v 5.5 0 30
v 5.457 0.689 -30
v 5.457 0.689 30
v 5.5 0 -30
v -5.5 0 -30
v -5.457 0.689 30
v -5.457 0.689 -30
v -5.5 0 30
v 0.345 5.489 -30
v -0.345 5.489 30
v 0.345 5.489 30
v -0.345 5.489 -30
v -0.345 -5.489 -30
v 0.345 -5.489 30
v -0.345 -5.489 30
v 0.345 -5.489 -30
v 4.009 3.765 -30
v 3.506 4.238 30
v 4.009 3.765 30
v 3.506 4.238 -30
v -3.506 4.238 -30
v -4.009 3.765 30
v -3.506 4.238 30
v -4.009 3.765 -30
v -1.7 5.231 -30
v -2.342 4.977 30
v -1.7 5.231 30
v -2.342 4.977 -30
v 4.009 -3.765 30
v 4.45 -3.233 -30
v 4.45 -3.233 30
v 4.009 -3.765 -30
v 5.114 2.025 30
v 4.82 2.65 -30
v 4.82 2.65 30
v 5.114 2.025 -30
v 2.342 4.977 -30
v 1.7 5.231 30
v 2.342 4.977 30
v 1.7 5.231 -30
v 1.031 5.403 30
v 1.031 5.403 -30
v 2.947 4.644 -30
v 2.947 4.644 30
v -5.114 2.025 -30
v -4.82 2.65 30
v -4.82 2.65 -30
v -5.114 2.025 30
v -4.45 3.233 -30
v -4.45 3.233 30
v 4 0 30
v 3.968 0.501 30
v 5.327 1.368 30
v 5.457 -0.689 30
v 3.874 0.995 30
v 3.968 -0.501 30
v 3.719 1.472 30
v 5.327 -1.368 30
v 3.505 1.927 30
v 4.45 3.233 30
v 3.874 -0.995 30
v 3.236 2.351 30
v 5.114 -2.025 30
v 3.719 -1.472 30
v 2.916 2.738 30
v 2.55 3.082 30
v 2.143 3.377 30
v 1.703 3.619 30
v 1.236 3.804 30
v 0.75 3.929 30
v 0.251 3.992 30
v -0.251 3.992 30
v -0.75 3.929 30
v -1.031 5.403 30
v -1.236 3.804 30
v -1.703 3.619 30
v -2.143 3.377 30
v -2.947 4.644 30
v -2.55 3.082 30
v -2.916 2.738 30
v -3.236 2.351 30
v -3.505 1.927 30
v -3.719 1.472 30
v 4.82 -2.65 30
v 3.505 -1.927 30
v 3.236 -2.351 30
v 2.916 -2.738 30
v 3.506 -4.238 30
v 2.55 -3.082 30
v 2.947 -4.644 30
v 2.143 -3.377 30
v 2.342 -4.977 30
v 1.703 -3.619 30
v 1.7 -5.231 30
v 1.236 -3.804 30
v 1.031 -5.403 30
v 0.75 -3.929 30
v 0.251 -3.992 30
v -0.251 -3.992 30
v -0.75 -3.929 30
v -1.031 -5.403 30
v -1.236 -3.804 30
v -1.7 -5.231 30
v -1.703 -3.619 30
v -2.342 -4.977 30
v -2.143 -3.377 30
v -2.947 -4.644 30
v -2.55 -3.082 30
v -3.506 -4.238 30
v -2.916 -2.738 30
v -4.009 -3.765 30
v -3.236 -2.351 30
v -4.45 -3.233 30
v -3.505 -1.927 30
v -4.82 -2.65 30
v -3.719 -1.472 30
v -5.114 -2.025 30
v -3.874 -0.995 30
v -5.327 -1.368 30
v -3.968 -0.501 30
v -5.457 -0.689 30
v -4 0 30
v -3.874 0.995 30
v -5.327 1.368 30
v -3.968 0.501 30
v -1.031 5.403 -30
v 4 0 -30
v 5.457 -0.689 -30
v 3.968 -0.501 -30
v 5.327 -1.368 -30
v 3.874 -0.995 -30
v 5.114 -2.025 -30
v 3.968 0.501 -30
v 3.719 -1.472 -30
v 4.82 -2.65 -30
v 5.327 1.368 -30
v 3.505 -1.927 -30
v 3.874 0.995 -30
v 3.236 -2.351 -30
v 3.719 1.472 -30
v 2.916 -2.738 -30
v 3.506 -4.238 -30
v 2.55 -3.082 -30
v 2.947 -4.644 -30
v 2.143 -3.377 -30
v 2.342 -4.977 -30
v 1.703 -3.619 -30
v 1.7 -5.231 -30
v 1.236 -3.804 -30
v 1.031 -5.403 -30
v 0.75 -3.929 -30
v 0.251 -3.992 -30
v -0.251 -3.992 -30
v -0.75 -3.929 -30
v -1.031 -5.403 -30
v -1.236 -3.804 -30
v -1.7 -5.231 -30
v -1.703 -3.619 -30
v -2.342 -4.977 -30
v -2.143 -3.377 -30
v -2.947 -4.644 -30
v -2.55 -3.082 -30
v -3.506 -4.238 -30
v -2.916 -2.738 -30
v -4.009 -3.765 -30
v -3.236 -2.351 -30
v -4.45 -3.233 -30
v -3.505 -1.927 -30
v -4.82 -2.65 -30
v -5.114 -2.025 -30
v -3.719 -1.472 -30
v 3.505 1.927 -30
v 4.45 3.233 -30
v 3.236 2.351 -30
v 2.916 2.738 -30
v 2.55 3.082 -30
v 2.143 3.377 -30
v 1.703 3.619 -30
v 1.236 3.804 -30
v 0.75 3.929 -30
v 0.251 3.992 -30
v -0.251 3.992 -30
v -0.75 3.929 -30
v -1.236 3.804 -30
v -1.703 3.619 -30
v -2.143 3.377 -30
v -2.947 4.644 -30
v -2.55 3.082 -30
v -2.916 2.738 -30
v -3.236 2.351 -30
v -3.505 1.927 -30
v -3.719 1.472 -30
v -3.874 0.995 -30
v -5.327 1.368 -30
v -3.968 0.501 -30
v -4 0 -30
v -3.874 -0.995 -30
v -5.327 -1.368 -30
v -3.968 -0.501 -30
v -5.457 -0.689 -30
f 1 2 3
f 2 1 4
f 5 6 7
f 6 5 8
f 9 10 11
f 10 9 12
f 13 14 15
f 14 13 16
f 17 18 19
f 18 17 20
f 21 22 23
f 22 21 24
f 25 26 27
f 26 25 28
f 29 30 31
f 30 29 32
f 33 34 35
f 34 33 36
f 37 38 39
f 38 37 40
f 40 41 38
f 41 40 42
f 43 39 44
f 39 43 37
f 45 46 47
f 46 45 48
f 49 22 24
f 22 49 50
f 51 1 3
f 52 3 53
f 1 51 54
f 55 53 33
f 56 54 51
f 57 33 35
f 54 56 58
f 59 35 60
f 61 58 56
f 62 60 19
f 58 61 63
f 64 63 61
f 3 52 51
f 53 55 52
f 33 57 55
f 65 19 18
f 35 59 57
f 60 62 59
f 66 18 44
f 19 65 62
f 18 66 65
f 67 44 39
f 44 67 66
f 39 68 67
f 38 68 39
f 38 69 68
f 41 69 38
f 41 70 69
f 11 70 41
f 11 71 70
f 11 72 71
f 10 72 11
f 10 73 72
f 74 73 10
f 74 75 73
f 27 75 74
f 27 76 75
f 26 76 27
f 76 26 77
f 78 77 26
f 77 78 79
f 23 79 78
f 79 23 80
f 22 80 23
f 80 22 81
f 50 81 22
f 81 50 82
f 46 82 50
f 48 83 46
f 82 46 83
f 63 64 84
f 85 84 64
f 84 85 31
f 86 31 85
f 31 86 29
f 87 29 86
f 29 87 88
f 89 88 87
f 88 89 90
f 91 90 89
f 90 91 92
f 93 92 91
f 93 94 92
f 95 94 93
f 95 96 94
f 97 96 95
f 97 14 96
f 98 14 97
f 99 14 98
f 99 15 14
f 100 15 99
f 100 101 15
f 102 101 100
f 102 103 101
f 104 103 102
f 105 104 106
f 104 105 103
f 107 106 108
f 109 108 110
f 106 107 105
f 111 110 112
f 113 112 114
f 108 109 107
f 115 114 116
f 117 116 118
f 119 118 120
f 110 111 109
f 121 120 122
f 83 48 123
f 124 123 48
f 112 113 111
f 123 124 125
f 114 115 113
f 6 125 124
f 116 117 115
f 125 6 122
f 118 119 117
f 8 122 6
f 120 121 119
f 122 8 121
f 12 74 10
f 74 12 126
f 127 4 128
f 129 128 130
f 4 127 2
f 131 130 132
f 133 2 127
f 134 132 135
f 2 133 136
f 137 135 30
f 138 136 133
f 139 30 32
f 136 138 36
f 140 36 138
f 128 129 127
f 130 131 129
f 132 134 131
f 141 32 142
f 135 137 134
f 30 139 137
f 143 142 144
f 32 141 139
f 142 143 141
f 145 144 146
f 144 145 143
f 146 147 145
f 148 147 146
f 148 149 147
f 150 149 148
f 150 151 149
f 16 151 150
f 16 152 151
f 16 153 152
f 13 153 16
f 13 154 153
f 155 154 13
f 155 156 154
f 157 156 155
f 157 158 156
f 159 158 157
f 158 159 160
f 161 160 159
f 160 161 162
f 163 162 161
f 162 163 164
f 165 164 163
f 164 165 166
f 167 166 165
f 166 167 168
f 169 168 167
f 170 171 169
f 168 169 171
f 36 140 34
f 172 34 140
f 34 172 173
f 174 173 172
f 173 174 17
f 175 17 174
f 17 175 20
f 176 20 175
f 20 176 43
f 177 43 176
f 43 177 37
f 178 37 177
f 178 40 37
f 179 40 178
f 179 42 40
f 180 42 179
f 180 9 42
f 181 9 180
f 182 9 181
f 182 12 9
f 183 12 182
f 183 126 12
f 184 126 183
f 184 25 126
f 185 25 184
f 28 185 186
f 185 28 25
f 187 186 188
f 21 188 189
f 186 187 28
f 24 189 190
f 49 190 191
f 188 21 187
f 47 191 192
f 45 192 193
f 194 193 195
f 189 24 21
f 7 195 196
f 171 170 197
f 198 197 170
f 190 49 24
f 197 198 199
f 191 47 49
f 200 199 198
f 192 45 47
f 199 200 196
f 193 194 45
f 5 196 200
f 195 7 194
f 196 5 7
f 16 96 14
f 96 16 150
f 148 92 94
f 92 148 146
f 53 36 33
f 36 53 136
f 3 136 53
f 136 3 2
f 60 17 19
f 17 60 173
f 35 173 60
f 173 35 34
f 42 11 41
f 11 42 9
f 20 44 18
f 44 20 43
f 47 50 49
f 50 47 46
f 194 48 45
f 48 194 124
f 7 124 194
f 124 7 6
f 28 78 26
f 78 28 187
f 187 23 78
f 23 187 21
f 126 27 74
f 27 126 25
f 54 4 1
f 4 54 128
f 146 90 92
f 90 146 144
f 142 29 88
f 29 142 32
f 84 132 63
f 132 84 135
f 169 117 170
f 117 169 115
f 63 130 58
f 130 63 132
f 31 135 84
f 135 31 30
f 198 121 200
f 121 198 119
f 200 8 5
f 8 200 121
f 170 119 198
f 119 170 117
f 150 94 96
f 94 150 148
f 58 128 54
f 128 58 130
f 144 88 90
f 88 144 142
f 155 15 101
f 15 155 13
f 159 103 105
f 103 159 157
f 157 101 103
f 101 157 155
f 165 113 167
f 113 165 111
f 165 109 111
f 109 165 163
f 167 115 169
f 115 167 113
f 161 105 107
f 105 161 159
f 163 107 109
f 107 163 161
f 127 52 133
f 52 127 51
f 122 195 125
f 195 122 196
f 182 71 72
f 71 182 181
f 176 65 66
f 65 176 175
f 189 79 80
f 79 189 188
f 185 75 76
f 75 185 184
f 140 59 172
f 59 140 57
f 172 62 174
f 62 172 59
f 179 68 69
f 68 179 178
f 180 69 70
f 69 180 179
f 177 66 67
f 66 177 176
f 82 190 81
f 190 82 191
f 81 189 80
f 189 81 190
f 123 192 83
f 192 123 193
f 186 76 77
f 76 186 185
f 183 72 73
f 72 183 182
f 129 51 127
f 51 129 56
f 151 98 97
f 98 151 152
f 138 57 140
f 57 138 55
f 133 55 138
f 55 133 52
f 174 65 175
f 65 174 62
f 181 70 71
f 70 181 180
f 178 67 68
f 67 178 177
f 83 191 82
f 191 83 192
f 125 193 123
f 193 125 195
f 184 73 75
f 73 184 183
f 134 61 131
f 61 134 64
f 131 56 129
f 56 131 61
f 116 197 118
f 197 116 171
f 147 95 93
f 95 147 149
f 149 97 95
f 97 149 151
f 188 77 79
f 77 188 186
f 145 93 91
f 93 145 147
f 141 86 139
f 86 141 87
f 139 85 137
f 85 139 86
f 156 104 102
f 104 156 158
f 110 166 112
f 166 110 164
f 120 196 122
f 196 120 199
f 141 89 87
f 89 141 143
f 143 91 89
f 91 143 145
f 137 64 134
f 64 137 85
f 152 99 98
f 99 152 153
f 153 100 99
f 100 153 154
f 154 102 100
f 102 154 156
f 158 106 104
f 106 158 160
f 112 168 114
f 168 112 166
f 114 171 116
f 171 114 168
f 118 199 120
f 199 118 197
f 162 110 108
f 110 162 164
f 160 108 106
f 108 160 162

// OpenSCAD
$fn = 50;


difference() {
	union() {
		translate(v = [0, 0, -30.0000000000]) {
			cylinder(h = 60, r = 5.5000000000);
		}
	}
	union() {
		translate(v = [0, 0, -100.0000000000]) {
			cylinder(h = 200, r = 4);
		}
	}
}
